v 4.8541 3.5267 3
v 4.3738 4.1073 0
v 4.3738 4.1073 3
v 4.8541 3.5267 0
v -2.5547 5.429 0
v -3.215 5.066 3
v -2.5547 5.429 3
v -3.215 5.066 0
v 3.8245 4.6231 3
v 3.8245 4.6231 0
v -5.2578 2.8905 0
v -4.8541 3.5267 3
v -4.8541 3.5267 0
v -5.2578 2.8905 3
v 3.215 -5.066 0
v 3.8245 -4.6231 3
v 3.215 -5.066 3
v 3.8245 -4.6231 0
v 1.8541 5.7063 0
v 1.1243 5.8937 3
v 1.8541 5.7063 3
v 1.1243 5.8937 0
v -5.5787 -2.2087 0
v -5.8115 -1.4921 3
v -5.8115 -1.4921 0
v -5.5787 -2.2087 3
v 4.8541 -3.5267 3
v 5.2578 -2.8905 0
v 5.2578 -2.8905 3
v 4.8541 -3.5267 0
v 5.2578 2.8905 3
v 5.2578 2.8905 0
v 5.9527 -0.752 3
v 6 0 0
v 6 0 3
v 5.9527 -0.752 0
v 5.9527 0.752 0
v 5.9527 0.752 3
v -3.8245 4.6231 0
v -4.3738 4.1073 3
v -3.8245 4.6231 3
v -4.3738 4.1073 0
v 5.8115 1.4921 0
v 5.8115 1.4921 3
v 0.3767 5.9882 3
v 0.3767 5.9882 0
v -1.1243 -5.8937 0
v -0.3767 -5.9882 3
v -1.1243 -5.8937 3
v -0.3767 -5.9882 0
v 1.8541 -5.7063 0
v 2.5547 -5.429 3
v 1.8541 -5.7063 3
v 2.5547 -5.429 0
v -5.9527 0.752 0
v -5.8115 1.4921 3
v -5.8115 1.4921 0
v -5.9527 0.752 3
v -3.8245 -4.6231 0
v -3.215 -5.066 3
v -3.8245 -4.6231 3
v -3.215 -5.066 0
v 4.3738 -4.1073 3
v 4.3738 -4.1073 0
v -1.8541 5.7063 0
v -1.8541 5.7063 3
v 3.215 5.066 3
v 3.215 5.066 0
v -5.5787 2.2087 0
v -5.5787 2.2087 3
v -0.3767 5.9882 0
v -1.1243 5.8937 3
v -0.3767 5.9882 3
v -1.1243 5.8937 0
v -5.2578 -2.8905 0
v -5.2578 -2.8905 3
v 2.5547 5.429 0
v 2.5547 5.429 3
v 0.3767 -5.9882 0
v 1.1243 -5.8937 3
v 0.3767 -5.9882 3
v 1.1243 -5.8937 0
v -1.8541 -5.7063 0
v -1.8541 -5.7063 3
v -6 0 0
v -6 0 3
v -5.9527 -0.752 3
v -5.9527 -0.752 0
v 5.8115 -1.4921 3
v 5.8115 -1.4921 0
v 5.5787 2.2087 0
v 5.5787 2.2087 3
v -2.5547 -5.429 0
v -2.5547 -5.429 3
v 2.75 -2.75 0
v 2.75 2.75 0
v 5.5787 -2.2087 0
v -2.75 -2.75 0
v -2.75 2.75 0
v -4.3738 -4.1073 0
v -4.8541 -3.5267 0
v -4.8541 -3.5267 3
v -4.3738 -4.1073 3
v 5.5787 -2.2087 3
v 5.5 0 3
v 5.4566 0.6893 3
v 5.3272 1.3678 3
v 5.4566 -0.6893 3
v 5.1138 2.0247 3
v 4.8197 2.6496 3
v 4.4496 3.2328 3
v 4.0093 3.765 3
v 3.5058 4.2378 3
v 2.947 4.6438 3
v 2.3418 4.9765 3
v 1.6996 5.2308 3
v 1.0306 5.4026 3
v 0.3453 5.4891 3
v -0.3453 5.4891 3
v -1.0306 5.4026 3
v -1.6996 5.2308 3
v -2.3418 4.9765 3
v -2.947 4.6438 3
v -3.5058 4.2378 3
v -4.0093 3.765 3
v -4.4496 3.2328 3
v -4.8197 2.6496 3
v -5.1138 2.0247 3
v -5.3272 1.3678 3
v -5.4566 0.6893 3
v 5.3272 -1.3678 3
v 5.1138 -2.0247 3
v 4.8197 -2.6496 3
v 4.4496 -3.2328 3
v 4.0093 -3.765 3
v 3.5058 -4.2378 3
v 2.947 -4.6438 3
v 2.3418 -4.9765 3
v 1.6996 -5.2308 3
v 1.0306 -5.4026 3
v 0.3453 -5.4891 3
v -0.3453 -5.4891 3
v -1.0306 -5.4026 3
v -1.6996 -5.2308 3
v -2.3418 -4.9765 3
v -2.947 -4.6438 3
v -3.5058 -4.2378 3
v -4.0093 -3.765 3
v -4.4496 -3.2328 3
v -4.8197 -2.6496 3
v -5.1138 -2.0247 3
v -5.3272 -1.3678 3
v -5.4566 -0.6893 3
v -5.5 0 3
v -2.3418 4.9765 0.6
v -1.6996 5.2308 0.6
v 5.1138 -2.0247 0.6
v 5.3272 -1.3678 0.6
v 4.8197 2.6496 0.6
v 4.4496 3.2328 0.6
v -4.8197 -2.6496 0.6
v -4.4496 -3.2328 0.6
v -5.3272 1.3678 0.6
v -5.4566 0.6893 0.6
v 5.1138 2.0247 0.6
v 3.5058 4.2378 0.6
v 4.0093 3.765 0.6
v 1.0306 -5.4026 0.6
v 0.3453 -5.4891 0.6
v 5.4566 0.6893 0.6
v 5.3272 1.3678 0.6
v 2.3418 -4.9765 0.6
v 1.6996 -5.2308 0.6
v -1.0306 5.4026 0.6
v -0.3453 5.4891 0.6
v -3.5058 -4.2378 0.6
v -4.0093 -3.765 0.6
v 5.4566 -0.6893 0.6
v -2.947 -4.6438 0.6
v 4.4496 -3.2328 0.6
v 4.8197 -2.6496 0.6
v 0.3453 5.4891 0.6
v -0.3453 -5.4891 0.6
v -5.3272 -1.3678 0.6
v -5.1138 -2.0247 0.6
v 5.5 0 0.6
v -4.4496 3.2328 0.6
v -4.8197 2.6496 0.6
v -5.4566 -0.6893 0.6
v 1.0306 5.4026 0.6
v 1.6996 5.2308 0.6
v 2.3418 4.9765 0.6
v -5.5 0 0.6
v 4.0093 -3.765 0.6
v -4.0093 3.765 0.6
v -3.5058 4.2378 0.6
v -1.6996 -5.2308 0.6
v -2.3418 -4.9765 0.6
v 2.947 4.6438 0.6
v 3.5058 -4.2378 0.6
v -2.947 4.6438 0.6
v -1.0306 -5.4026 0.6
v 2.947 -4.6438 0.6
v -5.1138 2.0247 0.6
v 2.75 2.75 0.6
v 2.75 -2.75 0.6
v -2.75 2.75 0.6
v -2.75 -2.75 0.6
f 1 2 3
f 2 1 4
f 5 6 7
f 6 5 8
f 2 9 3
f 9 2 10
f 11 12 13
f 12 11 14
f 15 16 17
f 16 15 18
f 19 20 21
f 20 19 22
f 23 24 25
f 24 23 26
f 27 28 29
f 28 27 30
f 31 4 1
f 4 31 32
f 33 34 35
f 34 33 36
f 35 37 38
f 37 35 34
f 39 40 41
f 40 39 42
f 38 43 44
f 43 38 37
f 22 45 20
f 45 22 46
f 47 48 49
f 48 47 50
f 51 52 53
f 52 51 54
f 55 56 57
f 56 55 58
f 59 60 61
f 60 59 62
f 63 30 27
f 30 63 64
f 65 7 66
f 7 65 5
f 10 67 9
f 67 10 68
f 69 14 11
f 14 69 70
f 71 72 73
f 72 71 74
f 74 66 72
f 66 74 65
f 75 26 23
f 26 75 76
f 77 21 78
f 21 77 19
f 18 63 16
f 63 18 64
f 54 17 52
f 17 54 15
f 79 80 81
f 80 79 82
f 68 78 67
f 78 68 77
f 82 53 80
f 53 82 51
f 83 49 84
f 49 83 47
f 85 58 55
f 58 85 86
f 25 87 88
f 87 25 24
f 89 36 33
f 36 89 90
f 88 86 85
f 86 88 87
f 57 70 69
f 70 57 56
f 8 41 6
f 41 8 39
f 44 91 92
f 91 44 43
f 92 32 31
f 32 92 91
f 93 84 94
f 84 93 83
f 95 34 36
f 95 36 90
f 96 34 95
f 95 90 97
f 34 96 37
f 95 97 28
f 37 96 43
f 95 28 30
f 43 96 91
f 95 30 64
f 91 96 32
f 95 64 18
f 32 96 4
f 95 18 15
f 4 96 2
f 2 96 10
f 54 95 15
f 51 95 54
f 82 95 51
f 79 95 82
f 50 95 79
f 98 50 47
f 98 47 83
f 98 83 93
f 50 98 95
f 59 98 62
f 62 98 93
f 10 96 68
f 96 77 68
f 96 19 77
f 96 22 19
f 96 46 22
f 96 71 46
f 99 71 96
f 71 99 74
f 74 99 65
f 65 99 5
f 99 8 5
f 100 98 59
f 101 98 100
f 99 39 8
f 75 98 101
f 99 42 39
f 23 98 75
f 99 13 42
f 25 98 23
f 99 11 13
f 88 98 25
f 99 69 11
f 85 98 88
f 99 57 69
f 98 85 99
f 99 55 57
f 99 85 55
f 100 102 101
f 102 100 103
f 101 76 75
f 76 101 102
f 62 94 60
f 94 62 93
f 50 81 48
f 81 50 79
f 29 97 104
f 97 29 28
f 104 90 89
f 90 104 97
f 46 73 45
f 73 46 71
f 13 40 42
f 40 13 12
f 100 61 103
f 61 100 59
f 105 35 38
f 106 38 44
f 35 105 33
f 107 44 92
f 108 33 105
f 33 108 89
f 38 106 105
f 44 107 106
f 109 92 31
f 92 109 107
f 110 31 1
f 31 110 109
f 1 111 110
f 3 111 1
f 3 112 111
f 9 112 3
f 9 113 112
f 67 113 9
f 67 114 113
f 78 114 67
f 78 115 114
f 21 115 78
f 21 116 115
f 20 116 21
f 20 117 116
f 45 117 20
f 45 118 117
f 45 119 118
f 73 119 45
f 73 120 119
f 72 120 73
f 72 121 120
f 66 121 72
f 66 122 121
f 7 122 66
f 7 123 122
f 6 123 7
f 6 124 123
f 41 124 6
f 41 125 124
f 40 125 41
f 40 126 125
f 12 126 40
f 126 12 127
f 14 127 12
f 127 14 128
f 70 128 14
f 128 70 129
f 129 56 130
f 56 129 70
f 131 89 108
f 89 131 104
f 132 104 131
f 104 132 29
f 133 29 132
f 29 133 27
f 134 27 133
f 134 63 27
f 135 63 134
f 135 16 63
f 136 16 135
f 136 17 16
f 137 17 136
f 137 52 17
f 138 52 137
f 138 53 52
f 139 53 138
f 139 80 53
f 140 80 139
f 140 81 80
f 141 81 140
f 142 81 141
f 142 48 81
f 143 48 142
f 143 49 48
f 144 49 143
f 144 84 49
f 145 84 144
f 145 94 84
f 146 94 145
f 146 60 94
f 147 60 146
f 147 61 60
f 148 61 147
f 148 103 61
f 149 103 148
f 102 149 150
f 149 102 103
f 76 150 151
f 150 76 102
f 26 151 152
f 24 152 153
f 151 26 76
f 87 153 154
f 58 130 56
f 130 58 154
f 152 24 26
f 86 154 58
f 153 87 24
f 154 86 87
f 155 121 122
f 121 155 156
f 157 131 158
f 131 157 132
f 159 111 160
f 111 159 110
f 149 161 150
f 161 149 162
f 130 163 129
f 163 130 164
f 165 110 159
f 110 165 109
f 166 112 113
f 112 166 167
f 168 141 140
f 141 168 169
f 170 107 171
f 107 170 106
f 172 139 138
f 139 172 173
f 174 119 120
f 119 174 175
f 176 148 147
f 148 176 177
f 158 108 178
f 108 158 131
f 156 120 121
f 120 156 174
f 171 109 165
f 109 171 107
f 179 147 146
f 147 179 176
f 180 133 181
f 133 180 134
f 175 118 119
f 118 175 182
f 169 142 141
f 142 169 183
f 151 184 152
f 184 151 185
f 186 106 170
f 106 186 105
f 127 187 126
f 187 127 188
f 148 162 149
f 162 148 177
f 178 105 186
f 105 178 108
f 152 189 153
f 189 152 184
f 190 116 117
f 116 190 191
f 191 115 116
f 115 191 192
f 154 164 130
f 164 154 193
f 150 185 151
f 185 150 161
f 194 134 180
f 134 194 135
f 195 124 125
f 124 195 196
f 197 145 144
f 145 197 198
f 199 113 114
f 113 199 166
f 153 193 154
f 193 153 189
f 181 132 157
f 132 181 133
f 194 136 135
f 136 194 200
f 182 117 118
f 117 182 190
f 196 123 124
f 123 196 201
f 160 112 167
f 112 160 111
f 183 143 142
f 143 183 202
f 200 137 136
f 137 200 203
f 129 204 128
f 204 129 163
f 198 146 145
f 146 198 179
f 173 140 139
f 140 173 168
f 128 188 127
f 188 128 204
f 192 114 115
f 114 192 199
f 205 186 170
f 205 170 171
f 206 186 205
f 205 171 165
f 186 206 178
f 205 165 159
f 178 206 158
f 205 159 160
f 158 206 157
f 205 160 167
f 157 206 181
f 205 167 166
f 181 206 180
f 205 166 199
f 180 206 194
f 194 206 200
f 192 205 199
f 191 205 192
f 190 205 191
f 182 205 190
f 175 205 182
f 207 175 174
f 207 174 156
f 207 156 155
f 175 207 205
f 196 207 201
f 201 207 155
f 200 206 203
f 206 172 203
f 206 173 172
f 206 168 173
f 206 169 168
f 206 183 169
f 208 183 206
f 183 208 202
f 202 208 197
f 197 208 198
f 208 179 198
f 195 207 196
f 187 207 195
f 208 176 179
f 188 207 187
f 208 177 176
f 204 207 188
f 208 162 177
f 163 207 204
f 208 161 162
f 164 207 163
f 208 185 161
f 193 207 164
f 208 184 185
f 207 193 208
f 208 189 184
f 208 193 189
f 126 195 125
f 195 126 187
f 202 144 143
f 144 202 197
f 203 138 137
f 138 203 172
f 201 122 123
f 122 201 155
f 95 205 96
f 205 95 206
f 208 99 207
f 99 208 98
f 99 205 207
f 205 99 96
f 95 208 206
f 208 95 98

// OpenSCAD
$fn = 50;

difference() {
    cylinder(3, d=12);
    translate([0,0,0.6]) {
        cylinder(5, d=11);
    }
    translate([-2.75,-2.75,0]) {
        cube([5.5,5.5,1]);
    }
}
